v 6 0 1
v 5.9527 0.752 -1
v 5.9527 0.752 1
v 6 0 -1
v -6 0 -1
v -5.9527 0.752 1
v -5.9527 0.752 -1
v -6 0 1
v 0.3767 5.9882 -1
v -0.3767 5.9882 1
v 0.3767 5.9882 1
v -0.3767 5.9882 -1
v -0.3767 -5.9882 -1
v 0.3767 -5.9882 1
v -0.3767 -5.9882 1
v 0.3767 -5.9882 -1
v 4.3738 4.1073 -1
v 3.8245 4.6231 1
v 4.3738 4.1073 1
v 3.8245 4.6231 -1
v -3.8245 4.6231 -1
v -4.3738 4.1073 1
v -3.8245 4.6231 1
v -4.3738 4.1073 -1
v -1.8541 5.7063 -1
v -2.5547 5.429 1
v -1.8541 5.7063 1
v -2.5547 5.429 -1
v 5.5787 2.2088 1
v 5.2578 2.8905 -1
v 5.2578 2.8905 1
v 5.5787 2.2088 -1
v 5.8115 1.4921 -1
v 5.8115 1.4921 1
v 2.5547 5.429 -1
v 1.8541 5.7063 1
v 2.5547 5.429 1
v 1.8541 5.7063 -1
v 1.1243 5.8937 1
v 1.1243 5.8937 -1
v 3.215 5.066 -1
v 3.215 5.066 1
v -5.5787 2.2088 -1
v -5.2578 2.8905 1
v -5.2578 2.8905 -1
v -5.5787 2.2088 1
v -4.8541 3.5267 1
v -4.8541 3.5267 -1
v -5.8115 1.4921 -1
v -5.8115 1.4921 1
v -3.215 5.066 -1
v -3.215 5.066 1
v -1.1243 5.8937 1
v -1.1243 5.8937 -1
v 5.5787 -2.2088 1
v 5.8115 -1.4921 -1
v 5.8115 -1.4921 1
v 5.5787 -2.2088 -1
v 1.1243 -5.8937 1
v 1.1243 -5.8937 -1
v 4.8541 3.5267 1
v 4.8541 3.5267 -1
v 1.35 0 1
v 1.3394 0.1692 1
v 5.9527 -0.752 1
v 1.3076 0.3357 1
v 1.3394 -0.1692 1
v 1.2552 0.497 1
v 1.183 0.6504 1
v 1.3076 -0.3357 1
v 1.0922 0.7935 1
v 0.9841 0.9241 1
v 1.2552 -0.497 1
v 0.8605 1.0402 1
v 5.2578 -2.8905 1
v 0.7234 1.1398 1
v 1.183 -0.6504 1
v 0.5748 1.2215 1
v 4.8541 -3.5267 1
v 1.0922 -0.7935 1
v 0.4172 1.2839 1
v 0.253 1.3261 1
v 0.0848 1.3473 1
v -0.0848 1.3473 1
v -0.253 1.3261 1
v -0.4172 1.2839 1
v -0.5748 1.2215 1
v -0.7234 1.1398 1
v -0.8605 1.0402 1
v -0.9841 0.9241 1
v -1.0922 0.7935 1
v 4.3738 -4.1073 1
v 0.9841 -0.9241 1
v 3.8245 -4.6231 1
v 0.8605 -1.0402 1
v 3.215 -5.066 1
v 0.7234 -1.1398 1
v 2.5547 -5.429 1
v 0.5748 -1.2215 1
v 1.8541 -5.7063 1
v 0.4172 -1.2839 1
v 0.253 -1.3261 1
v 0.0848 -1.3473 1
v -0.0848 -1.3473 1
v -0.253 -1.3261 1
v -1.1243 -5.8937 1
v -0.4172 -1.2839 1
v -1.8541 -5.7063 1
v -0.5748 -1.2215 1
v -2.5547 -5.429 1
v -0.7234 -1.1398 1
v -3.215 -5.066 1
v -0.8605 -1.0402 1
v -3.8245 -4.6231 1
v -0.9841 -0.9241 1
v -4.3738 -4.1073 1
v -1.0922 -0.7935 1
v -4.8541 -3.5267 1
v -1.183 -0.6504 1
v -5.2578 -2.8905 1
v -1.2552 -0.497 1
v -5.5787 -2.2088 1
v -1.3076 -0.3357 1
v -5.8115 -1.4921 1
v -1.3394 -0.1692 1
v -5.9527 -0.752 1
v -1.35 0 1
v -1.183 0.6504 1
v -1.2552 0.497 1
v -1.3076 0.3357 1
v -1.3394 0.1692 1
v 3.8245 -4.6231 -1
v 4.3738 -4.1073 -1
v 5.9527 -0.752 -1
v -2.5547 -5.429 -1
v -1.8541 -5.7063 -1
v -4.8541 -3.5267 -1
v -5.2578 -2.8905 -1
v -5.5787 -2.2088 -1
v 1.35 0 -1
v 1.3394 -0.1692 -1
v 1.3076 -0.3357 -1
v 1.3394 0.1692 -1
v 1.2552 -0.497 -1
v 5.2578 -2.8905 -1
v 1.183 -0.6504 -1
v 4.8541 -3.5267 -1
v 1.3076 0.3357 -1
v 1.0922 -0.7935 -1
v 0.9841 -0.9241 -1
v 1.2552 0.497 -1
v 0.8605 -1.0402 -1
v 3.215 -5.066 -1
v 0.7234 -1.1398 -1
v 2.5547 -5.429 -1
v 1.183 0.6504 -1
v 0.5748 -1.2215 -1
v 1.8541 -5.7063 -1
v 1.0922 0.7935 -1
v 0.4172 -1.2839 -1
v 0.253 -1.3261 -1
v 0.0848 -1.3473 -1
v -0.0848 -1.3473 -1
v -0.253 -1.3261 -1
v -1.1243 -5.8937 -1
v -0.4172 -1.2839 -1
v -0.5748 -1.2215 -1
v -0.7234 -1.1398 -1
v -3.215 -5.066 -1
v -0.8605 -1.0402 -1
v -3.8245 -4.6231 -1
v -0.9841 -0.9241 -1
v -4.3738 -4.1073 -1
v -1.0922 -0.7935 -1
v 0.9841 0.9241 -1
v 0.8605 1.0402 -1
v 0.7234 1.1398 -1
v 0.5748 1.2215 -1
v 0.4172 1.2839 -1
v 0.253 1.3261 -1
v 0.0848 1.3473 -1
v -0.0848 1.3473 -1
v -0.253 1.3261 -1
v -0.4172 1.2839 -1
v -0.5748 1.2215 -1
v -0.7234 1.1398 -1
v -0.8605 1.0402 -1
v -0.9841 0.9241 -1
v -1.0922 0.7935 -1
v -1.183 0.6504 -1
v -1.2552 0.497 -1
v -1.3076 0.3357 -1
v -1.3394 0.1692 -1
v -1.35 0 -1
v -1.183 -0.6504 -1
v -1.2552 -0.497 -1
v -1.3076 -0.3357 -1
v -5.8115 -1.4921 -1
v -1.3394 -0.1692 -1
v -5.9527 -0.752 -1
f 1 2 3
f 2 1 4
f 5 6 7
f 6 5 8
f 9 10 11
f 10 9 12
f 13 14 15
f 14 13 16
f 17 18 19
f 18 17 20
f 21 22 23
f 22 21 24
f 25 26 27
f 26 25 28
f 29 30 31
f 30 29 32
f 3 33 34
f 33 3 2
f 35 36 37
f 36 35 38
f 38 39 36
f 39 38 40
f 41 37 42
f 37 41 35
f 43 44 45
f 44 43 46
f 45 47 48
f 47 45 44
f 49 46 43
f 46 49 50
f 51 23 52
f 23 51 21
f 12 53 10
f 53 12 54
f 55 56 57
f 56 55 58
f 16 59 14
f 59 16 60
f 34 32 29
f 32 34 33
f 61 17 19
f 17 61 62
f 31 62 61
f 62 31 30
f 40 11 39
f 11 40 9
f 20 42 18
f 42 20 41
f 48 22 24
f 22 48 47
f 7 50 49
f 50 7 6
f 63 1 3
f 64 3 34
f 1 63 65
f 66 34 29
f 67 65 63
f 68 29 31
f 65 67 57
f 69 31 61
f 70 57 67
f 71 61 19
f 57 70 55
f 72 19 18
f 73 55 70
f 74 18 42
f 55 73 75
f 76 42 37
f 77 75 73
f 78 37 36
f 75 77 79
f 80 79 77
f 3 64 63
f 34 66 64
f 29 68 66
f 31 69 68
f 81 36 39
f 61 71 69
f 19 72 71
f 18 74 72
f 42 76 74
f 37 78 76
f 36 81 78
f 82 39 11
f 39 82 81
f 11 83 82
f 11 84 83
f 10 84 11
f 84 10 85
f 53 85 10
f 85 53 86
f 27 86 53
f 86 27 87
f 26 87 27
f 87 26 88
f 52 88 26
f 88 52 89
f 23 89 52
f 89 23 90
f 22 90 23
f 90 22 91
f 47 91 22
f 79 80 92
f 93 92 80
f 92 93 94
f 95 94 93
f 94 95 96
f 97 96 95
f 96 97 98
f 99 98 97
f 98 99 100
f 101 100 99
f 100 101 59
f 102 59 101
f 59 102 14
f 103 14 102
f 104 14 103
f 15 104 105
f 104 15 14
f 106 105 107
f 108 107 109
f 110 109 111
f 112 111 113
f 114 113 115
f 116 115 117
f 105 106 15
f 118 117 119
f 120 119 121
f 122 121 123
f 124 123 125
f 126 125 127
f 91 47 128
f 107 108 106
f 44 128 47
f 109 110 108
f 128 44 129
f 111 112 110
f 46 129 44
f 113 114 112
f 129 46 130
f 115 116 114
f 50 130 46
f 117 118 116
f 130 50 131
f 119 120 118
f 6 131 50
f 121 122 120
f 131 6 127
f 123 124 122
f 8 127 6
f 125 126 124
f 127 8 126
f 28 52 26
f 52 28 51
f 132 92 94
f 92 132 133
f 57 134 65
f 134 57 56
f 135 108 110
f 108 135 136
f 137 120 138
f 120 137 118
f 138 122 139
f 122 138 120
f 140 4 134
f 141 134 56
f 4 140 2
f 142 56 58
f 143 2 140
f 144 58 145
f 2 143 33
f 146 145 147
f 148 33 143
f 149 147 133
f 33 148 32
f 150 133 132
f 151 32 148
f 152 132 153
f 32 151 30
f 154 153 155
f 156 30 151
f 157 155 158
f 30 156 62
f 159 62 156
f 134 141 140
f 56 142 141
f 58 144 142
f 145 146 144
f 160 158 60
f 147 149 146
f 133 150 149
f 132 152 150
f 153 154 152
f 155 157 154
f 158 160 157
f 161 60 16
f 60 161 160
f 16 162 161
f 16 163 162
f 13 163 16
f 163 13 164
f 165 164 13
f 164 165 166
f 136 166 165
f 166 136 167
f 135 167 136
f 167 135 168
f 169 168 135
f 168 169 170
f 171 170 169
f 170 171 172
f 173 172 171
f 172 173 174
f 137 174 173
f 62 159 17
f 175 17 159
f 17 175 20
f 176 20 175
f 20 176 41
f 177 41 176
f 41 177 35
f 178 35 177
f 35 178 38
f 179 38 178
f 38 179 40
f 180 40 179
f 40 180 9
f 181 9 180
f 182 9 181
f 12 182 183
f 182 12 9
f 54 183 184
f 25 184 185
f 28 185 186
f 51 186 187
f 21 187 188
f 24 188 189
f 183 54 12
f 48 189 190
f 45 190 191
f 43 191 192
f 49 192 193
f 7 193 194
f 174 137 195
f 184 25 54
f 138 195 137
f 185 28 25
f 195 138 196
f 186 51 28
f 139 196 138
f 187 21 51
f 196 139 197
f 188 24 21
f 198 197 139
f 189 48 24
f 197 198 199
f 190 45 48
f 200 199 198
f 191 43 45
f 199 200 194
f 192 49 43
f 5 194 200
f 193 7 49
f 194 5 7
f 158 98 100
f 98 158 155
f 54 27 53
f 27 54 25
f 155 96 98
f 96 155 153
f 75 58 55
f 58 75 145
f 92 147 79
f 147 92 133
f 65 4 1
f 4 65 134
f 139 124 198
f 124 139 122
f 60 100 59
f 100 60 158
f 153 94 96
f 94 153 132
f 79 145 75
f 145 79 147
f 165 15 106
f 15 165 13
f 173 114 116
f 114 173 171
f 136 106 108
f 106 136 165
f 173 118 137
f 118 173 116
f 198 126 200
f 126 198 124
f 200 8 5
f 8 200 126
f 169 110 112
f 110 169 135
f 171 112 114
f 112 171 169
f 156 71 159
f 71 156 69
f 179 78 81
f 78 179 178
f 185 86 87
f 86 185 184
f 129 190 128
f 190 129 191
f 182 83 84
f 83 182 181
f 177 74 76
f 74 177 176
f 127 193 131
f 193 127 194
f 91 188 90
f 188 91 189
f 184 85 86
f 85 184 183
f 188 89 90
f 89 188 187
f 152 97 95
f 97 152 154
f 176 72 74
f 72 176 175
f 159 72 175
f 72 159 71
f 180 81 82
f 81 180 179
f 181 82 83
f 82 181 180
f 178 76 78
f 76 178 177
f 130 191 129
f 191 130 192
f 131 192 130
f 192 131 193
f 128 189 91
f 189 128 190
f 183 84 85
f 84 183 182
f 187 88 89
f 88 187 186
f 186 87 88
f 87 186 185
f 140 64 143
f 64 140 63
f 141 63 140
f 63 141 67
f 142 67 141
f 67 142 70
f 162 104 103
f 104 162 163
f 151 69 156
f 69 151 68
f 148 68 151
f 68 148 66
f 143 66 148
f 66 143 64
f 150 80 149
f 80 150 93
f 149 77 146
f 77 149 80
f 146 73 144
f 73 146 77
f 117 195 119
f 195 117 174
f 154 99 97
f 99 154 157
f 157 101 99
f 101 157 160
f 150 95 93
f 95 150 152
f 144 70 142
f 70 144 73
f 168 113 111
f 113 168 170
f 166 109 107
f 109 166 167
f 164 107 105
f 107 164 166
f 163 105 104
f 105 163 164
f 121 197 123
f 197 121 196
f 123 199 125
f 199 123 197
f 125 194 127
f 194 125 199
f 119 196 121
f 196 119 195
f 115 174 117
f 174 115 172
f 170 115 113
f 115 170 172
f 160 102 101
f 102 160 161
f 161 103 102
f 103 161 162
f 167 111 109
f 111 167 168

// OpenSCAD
$fn = 50;


difference() {
	union() {
		translate(v = [0, 0, -1.0000000000]) {
			cylinder(h = 2, r = 6.0000000000);
		}
	}
	union() {
		translate(v = [0, 0, -100.0000000000]) {
			cylinder(h = 200, r = 1.3500000000);
		}
	}
}
